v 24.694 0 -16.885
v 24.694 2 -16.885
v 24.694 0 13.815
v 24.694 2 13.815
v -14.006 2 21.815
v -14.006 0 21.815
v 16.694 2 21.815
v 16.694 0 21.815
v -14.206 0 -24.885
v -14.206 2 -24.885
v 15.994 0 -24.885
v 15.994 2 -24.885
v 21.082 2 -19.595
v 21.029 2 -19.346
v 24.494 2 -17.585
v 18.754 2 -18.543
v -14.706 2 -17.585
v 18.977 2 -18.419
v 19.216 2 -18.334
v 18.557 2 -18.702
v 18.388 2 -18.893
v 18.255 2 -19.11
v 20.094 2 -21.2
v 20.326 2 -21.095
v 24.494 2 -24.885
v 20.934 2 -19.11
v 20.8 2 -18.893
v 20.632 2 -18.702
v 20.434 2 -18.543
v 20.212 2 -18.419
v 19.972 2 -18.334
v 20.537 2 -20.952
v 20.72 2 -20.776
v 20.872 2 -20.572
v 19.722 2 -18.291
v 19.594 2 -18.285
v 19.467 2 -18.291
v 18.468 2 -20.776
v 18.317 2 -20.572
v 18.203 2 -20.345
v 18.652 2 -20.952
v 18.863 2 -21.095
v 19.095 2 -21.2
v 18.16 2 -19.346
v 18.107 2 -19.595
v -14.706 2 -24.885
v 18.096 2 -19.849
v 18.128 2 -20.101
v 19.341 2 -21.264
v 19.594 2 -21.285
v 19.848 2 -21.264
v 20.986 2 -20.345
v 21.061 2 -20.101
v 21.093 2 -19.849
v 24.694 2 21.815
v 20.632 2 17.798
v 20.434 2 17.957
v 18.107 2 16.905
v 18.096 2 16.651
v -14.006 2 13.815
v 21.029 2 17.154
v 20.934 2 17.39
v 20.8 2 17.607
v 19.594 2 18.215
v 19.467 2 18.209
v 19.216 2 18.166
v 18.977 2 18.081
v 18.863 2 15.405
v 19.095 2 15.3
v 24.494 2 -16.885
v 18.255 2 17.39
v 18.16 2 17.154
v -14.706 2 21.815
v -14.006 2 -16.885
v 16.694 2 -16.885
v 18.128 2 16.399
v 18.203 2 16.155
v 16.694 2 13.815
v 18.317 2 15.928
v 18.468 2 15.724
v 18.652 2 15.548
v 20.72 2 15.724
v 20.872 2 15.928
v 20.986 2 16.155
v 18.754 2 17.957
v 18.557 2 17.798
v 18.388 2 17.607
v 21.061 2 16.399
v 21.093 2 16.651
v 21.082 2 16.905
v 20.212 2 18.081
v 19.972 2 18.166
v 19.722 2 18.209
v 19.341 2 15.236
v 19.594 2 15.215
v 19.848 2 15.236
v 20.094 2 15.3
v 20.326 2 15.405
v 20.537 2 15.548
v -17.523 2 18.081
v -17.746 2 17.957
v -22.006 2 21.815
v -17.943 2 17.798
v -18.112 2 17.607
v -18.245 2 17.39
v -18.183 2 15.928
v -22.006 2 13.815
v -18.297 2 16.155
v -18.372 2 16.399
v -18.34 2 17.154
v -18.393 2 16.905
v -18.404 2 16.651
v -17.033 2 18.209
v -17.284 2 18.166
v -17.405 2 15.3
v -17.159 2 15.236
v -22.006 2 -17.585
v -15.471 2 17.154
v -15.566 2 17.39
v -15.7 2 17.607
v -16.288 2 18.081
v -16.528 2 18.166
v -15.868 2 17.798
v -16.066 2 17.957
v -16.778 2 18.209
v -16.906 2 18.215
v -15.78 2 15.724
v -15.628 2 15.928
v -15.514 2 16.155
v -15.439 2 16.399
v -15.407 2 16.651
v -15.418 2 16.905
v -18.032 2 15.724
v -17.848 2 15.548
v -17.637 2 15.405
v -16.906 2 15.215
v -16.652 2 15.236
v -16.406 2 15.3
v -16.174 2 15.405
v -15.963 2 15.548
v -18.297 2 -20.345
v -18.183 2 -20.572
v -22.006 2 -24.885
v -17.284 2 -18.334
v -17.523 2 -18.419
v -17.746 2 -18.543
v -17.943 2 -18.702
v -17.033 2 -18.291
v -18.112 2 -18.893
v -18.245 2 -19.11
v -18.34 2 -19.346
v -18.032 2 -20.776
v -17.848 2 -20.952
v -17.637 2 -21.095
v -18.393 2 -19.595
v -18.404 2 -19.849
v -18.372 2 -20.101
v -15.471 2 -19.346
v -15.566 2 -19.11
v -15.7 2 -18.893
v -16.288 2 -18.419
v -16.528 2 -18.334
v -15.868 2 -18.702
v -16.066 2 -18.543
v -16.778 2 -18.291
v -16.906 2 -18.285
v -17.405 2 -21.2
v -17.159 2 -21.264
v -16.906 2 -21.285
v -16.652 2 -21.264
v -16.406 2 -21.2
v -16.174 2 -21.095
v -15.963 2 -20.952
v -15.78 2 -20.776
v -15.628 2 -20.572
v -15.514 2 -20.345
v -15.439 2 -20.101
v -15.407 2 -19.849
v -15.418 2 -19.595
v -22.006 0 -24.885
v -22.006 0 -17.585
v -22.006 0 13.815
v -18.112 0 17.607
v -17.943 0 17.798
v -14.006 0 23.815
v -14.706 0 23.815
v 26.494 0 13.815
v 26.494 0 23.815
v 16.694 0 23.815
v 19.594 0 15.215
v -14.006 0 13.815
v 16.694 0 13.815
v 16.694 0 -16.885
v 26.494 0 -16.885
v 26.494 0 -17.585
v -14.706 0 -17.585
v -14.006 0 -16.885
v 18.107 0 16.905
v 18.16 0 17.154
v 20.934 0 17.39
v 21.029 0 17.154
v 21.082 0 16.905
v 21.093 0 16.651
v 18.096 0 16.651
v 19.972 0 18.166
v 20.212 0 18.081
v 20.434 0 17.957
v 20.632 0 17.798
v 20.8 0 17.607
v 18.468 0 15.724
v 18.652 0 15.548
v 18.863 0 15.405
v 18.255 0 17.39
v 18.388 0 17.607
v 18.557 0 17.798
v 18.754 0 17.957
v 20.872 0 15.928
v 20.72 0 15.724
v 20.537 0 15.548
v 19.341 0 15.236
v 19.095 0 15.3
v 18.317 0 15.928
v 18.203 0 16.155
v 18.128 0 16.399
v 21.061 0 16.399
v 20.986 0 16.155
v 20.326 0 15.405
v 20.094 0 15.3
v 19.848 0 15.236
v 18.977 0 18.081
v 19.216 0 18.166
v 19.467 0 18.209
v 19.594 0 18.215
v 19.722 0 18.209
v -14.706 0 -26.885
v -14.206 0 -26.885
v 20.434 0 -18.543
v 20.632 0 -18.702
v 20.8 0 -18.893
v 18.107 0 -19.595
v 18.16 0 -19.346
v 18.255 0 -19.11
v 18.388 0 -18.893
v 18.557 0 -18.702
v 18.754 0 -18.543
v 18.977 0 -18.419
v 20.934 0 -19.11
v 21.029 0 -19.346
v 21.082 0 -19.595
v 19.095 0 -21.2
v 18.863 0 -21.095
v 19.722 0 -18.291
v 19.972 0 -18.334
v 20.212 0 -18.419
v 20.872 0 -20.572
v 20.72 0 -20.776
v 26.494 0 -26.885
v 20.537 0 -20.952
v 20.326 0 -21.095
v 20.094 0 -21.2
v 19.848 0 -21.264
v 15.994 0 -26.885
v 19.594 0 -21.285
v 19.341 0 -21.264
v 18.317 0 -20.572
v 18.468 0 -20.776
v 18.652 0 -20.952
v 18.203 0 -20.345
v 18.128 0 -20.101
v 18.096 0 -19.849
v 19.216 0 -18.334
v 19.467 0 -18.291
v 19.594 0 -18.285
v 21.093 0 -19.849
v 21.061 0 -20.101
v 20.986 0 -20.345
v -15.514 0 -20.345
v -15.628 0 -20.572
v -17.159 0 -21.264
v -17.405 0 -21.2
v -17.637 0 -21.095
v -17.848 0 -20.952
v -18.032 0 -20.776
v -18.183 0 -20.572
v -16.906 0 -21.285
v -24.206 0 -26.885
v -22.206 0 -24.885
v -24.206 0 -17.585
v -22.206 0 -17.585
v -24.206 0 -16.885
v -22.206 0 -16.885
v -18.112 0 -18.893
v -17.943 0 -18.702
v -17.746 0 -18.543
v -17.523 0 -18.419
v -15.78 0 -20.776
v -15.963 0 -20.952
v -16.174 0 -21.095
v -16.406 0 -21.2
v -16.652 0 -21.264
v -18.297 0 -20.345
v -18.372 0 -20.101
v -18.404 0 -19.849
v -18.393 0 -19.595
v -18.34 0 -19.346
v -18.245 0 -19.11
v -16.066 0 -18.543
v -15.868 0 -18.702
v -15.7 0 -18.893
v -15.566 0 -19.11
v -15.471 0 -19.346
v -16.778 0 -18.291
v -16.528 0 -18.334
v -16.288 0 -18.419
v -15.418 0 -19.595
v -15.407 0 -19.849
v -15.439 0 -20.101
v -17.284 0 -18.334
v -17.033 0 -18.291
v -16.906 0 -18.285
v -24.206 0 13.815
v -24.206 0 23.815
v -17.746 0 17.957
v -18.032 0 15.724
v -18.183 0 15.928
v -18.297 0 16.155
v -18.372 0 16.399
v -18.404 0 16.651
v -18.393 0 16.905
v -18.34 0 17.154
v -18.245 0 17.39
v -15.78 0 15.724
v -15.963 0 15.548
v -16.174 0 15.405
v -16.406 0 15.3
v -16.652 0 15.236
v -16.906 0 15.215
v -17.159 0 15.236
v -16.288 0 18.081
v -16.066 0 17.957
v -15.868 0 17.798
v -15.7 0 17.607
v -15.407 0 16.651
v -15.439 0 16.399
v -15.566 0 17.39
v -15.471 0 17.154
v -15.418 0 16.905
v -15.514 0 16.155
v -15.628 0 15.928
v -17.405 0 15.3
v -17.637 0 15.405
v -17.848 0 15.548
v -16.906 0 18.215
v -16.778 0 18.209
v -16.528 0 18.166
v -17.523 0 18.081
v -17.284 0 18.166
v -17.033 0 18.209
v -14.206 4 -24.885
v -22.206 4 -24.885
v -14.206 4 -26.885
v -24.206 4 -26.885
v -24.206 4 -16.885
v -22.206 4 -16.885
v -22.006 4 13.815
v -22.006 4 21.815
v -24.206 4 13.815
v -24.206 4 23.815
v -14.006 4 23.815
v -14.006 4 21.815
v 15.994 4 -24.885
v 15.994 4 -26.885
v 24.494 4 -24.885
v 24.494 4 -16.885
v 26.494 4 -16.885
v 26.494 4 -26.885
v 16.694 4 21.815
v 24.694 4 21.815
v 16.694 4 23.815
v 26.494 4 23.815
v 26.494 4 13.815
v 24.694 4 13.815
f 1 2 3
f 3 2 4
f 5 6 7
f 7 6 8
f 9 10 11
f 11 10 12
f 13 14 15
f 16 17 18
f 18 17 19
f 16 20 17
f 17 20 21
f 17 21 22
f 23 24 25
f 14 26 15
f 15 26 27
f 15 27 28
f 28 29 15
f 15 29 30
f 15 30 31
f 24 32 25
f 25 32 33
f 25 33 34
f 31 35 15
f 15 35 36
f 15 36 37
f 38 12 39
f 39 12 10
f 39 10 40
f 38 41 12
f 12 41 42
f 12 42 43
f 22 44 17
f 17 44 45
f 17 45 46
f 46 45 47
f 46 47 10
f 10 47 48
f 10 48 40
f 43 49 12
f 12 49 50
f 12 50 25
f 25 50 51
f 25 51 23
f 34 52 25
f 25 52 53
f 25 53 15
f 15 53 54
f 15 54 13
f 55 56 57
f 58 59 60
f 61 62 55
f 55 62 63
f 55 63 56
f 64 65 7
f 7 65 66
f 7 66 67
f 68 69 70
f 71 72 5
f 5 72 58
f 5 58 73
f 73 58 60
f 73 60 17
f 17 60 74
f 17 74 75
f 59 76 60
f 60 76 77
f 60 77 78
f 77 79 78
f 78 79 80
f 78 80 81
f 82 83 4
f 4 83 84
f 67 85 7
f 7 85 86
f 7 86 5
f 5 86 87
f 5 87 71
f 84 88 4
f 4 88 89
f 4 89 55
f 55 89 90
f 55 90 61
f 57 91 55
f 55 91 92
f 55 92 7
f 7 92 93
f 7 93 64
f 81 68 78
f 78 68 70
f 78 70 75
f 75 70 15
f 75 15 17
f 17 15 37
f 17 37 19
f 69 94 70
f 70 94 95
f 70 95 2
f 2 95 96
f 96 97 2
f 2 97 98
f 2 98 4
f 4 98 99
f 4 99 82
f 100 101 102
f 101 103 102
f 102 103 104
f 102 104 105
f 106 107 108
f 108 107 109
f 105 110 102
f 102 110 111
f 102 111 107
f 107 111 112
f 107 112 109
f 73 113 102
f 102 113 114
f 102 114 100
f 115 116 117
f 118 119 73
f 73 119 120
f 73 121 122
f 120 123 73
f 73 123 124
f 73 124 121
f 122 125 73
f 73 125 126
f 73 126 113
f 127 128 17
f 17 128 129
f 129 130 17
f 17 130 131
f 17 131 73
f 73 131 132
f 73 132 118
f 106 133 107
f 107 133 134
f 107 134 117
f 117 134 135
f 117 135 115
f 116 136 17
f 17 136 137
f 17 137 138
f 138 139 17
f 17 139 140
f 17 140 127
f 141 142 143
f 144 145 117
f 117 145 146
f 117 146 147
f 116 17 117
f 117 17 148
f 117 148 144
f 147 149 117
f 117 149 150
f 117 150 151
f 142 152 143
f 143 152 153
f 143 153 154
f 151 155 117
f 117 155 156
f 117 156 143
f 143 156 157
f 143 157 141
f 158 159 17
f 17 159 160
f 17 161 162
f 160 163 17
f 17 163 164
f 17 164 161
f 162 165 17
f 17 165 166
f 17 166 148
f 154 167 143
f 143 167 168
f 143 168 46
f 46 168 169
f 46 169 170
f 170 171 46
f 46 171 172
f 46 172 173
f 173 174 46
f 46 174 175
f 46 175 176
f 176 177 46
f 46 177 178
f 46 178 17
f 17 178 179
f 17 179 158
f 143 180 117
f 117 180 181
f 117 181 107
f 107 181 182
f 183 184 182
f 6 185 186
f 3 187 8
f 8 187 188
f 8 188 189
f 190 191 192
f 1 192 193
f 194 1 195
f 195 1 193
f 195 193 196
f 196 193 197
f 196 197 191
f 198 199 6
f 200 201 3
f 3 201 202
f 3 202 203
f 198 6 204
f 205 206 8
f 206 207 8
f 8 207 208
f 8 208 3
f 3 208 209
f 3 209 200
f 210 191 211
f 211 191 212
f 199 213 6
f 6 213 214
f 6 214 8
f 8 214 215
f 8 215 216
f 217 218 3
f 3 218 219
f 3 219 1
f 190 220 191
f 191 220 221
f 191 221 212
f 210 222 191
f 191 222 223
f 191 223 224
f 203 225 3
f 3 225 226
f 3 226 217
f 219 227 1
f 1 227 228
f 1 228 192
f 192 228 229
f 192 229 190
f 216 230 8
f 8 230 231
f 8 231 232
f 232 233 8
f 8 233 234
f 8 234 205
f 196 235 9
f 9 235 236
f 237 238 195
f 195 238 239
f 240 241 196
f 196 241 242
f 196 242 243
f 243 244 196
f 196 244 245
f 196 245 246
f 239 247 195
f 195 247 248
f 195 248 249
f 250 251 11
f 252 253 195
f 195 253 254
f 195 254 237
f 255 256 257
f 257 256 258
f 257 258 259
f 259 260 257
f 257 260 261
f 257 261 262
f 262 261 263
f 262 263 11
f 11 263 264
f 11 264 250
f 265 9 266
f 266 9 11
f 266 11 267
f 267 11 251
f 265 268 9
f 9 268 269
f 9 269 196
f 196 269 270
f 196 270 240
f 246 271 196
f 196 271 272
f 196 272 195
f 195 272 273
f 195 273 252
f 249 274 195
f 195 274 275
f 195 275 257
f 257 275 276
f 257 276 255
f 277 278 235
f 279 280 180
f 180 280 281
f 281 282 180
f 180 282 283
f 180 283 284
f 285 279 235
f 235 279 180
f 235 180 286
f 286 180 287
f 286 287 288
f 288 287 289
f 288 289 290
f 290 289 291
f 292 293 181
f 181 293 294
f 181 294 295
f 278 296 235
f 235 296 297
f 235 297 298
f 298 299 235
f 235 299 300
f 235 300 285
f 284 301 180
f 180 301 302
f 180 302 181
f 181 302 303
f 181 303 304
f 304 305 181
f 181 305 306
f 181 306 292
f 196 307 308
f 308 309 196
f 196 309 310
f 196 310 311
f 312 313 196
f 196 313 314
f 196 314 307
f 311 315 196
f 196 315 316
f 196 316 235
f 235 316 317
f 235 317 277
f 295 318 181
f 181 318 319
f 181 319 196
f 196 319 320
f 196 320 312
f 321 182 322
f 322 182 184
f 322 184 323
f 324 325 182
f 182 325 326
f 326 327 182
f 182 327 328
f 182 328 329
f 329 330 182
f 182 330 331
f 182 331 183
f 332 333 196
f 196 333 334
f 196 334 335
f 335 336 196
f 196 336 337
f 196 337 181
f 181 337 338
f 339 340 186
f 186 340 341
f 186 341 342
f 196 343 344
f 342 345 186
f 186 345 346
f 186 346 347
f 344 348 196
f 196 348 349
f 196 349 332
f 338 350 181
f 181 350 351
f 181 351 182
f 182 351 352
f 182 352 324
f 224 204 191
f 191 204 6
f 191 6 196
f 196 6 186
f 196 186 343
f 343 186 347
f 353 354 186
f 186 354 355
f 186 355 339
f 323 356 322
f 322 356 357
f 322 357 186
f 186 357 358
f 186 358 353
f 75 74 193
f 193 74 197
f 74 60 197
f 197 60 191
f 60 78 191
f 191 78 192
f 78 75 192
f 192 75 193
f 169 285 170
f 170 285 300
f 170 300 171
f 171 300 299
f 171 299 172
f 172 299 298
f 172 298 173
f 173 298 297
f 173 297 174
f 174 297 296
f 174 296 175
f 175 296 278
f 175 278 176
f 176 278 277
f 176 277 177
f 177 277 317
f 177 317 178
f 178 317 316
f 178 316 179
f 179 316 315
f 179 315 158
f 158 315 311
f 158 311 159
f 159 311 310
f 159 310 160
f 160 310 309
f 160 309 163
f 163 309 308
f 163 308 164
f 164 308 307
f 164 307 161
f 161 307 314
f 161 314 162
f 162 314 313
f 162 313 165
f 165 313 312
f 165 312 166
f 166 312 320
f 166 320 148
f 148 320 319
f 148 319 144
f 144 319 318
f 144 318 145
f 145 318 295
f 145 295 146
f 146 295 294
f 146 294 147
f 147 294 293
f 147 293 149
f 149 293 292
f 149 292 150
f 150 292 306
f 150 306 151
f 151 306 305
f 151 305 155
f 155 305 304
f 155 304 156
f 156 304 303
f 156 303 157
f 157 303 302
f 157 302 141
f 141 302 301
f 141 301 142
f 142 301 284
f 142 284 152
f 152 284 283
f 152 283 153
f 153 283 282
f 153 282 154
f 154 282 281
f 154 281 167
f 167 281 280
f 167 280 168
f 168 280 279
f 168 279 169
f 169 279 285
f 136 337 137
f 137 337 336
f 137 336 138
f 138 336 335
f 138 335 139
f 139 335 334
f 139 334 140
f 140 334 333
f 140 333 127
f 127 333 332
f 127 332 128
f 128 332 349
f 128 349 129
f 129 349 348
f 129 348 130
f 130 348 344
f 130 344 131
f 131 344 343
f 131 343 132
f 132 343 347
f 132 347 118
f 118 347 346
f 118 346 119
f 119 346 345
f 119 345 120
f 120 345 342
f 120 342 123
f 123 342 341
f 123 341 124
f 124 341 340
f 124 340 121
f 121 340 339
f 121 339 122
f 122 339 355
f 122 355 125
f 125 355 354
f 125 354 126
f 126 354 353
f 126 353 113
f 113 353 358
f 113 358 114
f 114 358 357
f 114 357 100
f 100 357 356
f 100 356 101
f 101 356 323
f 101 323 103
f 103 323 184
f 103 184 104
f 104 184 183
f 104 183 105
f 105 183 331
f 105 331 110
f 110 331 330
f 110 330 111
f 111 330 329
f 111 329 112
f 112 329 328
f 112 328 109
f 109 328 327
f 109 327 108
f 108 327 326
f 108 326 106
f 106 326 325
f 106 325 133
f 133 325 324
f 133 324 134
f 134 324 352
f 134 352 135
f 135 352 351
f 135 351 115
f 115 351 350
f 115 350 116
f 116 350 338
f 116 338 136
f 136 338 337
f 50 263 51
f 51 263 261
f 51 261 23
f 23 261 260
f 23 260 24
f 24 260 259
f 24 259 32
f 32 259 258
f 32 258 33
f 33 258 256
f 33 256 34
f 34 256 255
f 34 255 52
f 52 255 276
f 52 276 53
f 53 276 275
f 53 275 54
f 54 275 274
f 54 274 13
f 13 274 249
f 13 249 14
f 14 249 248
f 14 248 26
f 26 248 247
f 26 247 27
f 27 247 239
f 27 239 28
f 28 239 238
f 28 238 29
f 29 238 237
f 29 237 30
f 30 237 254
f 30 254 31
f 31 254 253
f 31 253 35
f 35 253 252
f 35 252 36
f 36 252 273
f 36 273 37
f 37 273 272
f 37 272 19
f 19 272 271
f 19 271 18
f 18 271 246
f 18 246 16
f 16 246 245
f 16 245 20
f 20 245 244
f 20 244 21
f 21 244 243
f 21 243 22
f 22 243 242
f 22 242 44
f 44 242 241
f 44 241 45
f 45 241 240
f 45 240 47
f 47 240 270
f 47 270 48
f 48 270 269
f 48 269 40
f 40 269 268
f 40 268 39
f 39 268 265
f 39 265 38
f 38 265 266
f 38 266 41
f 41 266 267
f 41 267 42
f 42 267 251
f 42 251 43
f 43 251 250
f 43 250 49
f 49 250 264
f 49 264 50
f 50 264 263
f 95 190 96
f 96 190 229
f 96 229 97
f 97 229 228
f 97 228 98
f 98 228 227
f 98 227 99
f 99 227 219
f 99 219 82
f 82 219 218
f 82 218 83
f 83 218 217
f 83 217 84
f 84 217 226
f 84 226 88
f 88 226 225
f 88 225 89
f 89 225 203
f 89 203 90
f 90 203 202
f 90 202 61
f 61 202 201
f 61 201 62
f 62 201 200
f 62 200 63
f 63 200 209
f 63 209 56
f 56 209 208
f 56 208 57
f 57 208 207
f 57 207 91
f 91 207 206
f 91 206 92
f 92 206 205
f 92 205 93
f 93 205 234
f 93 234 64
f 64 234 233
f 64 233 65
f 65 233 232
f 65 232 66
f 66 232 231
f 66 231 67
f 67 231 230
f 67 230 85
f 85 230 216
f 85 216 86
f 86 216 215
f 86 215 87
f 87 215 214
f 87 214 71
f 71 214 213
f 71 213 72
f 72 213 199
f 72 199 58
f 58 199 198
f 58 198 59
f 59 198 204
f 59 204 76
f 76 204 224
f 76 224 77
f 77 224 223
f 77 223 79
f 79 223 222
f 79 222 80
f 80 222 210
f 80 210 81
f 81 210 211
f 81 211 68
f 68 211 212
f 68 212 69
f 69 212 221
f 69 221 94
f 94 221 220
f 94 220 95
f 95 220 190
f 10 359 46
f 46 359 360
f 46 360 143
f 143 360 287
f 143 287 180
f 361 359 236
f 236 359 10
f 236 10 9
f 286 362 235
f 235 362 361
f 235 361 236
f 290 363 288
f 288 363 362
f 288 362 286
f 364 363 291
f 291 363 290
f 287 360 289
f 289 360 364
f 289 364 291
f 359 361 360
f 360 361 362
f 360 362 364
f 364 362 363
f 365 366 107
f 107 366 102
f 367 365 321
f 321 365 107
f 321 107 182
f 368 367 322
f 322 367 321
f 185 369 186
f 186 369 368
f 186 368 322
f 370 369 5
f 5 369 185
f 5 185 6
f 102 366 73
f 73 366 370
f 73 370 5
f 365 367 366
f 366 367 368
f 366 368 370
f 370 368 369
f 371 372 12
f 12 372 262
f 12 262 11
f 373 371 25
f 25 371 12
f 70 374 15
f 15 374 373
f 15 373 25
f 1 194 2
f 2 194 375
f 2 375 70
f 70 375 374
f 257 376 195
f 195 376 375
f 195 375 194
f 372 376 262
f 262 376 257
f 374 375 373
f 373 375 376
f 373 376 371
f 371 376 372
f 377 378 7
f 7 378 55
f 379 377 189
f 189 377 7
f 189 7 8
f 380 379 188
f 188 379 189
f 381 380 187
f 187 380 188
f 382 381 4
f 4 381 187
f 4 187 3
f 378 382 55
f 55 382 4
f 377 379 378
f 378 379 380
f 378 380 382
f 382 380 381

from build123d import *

# Parameters (mm, degrees)
SKETCH1_R           = 1.5
SKETCH1_W           = 30.7
SKETCH1_H           = 30.7
BOSS_EXTRUDE1_DEPTH = 2
BOSS_EXTRUDE2_DEPTH = 4


with BuildPart() as part:
    # Sketch1 → Boss-Extrude1 (new body)
    with BuildSketch(Plane(origin=(0, 0, 0), x_dir=(1, 0, 0), z_dir=(0, 1, 0))):
        Polygon((-22.005550203, -21.814567772), (-14.005550203, -21.814567772), (16.694449797, -21.814567772), (24.694449797, -21.814567772), (24.694449797, -13.814567772), (24.694449797, 16.669052986), (24.694449797, 24.885432228), (-22.005550203, 24.885432228), (-22.005550203, 15.385432228), (-22.005550203, -15.314567772), align=None)
        with Locations(Location((-16.905550203, 19.785432228, 0), (0, 0, 270))):
            Circle(SKETCH1_R, mode=Mode.SUBTRACT)
        with Locations(Location((-16.905550203, -16.714567772, 0), (0, 0, 270))):
            Circle(SKETCH1_R, mode=Mode.SUBTRACT)
        with Locations(Location((19.594449797, 19.785432228, 0), (0, 0, 270))):
            Circle(SKETCH1_R, mode=Mode.SUBTRACT)
        with Locations(Location((19.594449797, -16.714567772, 0), (0, 0, 270))):
            Circle(SKETCH1_R, mode=Mode.SUBTRACT)
        with Locations((1.344449797, 1.535432228)):
            Rectangle(SKETCH1_W, SKETCH1_H, mode=Mode.SUBTRACT)
    extrude(amount=BOSS_EXTRUDE1_DEPTH)

    # Sketch3 → Boss-Extrude2 (add)
    with BuildSketch(Plane(origin=(0, 0, 0), x_dir=(1, 0, 0), z_dir=(0, 1, 0))):
        Polygon((-14.205550203, 24.885432228), (-14.205550203, 26.885432228), (-24.205550203, 26.885432228), (-24.205550203, 16.885432228), (-22.205550203, 16.885432228), (-22.205550203, 24.885432228), align=None)
        Polygon((-22.005550203, -13.814567772), (-24.205550203, -13.814567772), (-24.205550203, -23.814567772), (-14.005550203, -23.814567772), (-14.005550203, -21.814567772), (-22.005550203, -21.814567772), align=None)
        Polygon((15.994449797, 26.885432228), (26.494449797, 26.885432228), (26.494449797, 16.885432228), (24.494449797, 16.885432228), (24.494449797, 24.885432228), (15.994449797, 24.885432228), align=None)
        Polygon((16.694449797, -21.814567772), (16.694449797, -23.814567772), (26.494449797, -23.814567772), (26.494449797, -13.814567772), (24.694449797, -13.814567772), (24.694449797, -21.814567772), align=None)
    extrude(amount=BOSS_EXTRUDE2_DEPTH)


solid = part.part
